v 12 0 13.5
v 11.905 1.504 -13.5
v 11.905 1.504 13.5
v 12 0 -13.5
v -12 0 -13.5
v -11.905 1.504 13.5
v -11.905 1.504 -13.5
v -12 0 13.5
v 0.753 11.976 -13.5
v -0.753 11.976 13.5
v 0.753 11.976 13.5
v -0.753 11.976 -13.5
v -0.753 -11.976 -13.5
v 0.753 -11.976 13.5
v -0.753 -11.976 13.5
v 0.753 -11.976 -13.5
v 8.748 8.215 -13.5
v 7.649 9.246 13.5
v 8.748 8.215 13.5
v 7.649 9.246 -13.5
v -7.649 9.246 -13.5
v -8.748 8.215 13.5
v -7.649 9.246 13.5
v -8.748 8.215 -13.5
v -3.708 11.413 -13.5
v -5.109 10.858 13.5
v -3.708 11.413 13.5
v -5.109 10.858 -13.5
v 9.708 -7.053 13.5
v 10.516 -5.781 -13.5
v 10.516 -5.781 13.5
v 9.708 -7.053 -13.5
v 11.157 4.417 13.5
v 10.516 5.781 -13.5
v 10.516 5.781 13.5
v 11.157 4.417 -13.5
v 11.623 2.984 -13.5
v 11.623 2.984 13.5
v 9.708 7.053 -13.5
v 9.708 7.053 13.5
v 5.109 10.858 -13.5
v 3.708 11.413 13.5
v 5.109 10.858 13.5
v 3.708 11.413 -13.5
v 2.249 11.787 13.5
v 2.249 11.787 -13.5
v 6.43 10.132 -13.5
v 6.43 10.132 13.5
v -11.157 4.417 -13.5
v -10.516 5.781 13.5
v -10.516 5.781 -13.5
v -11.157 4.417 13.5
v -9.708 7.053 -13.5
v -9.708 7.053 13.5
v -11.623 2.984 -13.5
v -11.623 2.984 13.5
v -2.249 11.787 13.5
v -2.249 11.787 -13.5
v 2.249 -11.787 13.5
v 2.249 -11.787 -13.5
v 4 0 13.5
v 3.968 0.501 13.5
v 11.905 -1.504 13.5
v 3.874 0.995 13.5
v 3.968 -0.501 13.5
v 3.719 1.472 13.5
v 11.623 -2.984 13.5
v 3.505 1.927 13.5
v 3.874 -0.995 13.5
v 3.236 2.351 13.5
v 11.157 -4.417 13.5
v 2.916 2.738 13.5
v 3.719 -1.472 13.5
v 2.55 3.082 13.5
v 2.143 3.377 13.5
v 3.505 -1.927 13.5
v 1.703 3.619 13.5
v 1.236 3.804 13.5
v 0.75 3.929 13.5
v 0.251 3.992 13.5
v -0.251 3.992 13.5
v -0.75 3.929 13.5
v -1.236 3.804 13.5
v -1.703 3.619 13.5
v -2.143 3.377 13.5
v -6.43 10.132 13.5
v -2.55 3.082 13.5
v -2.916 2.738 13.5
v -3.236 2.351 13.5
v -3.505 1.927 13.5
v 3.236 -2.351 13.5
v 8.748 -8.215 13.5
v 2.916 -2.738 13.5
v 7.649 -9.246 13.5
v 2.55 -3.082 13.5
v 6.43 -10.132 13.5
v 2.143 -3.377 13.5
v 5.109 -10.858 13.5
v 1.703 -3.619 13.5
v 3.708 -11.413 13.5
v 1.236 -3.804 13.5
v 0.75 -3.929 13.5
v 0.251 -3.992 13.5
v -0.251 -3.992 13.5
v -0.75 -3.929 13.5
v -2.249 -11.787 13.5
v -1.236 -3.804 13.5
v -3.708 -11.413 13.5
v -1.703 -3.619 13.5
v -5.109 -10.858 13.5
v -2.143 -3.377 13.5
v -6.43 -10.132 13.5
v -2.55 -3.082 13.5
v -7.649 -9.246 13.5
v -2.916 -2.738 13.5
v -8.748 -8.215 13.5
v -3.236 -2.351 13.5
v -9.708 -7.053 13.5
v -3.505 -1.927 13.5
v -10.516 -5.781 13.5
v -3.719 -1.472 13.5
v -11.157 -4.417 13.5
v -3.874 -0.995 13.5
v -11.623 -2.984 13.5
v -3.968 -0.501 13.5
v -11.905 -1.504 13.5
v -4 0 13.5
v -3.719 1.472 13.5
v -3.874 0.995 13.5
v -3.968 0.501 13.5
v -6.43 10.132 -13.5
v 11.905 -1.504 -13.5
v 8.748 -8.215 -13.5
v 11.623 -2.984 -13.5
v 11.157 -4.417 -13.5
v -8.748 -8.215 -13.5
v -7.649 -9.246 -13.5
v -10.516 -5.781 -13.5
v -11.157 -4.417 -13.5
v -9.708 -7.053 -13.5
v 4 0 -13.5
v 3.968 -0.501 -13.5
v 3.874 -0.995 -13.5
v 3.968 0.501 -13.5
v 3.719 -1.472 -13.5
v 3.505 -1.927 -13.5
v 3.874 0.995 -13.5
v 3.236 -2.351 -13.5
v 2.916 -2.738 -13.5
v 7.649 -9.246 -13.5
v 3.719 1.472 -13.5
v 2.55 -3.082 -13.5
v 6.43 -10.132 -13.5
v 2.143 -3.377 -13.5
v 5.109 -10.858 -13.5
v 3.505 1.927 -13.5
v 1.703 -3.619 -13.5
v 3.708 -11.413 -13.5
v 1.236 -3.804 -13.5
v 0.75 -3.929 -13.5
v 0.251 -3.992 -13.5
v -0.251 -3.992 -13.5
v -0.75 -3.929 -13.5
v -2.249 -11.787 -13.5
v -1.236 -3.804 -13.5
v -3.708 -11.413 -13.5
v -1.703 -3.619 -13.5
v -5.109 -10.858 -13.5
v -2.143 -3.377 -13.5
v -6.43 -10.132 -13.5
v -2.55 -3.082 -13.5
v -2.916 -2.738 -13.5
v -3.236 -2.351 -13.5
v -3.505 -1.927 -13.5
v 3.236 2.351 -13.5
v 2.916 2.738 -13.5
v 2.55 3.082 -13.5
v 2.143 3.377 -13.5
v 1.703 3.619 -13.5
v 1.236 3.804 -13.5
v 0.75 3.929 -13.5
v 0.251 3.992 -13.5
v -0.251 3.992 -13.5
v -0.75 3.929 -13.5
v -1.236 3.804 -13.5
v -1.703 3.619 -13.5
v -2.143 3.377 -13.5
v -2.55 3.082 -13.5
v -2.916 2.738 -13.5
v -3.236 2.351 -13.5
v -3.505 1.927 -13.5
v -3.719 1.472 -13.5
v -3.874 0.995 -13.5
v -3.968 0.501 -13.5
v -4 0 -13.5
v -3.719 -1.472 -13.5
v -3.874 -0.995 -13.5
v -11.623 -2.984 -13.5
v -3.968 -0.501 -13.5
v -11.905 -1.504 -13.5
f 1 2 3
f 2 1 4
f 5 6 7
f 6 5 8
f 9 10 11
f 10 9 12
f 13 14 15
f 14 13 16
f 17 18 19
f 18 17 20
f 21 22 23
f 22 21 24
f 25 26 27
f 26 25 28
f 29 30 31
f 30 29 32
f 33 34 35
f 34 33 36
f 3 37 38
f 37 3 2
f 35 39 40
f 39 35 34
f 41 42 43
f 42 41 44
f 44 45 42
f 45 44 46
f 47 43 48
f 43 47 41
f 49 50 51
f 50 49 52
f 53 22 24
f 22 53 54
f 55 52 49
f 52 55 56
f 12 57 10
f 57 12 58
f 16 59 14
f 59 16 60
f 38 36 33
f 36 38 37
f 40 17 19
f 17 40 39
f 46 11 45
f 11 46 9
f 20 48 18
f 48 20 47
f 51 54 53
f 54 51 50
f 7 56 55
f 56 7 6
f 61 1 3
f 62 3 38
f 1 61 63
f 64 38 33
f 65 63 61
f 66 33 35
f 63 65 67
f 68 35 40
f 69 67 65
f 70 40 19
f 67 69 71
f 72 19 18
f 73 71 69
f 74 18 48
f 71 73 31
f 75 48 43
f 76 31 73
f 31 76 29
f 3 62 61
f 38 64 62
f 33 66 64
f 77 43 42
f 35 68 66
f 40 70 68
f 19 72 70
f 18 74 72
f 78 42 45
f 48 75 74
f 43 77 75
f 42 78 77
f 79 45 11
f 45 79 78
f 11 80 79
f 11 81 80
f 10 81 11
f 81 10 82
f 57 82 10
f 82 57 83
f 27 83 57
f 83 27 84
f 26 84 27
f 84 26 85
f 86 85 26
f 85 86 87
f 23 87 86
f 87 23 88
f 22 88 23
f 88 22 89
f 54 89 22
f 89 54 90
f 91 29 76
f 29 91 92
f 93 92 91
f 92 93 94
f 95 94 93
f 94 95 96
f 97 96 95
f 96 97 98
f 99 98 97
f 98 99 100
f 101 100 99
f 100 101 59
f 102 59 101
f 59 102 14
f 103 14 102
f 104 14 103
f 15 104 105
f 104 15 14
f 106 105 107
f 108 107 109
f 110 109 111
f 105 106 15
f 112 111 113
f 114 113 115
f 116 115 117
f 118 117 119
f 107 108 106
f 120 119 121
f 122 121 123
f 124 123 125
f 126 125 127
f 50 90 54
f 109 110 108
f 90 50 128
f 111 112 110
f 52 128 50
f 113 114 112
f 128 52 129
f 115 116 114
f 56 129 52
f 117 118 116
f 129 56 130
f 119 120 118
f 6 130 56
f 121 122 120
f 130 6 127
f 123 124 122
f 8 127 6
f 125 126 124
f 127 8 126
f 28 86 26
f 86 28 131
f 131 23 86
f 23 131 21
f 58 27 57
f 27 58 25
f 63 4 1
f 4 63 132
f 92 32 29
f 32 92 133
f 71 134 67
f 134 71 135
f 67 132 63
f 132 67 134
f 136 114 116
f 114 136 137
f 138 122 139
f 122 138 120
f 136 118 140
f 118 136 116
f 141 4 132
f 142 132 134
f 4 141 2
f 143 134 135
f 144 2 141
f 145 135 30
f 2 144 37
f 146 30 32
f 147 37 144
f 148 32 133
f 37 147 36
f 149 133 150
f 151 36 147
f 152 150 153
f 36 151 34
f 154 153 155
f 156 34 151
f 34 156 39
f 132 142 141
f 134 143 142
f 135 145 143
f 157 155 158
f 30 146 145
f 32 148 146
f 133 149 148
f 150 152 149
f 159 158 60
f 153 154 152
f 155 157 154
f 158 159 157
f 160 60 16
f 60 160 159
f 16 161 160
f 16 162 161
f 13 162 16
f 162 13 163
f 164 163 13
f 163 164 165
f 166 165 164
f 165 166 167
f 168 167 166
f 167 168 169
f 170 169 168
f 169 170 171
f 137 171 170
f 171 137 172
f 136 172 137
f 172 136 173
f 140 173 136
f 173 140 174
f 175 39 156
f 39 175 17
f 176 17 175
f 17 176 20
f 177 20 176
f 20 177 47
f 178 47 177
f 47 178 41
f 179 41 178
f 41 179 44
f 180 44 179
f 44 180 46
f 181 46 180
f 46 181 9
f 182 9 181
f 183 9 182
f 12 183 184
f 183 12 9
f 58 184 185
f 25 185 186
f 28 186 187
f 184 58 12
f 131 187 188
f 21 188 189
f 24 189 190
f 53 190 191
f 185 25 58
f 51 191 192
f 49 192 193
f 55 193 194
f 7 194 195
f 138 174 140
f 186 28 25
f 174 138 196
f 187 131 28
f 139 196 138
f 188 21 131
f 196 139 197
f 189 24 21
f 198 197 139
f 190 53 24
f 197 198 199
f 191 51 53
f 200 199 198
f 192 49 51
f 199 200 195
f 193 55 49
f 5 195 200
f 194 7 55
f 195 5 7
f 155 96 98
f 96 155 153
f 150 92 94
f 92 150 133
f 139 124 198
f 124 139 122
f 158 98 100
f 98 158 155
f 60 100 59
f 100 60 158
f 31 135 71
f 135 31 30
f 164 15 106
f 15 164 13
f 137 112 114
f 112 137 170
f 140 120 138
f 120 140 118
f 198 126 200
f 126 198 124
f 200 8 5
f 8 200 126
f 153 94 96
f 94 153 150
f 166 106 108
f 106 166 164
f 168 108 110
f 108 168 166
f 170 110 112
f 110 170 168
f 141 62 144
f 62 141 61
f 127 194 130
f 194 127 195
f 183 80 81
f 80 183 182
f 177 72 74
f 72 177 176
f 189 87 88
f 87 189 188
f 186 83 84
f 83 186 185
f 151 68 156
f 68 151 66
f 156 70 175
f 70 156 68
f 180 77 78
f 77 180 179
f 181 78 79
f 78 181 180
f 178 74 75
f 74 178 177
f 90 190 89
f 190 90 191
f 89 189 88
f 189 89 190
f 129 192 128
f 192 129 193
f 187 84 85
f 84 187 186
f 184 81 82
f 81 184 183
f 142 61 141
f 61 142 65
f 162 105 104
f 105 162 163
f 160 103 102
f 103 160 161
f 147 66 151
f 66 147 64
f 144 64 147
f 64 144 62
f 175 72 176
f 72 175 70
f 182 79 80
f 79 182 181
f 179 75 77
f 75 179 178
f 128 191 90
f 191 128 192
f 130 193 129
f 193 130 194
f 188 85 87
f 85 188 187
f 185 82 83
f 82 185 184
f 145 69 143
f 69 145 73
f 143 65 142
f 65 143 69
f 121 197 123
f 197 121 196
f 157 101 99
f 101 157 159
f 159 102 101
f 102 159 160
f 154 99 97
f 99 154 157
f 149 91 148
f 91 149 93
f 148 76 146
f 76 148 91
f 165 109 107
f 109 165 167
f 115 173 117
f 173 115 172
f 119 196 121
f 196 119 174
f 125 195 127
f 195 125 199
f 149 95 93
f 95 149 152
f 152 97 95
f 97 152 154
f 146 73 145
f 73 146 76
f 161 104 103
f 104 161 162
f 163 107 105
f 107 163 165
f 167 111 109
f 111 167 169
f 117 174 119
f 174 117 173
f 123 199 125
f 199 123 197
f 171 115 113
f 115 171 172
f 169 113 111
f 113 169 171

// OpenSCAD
$fn = 50;


difference() {
	union() {
		translate(v = [0, 0, -13.5000000000]) {
			cylinder(h = 27, r = 12.0000000000);
		}
	}
	union() {
		translate(v = [0, 0, -100.0000000000]) {
			cylinder(h = 200, r = 4);
		}
	}
}
